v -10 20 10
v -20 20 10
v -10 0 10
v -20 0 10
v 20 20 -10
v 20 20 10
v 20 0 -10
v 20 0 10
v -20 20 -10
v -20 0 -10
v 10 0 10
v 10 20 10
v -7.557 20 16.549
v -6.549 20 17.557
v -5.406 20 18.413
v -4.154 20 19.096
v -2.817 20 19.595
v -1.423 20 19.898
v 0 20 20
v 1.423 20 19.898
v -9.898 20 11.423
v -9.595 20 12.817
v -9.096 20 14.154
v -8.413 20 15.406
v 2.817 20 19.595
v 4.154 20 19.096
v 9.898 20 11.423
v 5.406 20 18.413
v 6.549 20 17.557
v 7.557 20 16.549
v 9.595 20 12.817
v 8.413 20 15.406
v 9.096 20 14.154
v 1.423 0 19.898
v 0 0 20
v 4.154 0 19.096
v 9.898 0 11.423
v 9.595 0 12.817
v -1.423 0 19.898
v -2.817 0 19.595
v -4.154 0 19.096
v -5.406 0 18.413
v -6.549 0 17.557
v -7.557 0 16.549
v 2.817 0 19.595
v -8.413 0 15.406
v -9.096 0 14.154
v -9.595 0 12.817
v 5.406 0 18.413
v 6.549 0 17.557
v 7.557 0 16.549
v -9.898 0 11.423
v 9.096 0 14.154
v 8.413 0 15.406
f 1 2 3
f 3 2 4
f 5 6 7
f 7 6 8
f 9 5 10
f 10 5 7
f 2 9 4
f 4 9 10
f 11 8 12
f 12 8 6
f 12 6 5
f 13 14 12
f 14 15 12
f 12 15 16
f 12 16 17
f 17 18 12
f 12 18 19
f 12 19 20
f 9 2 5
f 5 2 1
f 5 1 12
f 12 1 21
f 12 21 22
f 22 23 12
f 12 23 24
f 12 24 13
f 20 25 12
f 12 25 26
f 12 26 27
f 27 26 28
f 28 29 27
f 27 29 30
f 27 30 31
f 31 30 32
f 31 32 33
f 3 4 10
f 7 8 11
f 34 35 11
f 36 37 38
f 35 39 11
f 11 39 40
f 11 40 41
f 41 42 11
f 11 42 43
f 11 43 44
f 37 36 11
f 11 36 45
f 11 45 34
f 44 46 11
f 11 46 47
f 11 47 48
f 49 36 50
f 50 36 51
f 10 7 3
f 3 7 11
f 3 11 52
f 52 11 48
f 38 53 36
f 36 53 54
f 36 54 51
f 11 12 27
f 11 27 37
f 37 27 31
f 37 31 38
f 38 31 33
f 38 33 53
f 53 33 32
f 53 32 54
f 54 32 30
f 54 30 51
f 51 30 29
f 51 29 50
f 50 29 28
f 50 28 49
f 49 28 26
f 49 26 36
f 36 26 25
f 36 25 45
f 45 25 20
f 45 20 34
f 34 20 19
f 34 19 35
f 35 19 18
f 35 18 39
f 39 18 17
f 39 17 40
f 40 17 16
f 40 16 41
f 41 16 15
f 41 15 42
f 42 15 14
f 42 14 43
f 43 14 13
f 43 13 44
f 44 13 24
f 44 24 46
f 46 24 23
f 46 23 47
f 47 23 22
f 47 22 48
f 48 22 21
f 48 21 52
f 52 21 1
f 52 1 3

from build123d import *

# Parameters (mm, degrees)
CROQUIS1_W              = 40
CROQUIS1_H              = 20
SALIENTE_EXTRUIR1_DEPTH = 20
SALIENTE_EXTRUIR2_DEPTH = 20


with BuildPart() as part:
    # Croquis1 → Saliente-Extruir1 (new body)
    with BuildSketch(Plane(origin=(0, 0, 0), x_dir=(1, 0, 0), z_dir=(0, 1, 0))):
        Rectangle(CROQUIS1_W, CROQUIS1_H)
    extrude(amount=SALIENTE_EXTRUIR1_DEPTH)

    # Croquis2 → Saliente-Extruir2 (add)
    with BuildSketch(Plane(origin=(0, 20, 0), x_dir=(1, 0, 0), z_dir=(0, 1, 0))):
        with BuildLine():
            Line((-10, -10), (10, -10))
            ThreePointArc((10, -10), (0, -20), (-10, -10))
        make_face()
    extrude(amount=-SALIENTE_EXTRUIR2_DEPTH)


solid = part.part
